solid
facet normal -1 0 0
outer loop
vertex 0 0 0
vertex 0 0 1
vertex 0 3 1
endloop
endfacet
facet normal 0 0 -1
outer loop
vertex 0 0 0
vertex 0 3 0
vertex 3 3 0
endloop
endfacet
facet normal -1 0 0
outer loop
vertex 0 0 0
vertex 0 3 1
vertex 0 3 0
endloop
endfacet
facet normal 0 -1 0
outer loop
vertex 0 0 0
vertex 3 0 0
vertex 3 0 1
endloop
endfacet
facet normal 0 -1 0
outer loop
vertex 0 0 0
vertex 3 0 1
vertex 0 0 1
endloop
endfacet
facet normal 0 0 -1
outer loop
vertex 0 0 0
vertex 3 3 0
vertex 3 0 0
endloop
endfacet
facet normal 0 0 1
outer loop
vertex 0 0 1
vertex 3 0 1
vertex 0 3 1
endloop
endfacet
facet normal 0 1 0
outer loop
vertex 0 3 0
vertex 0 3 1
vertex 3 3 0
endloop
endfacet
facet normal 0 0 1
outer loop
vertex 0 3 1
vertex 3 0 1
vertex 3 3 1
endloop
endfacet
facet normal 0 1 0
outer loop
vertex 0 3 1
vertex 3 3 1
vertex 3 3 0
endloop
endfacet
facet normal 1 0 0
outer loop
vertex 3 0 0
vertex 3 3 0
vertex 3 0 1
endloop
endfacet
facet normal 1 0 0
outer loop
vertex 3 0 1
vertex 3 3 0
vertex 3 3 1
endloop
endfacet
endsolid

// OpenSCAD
/* Warning, this is a very basic generator with a lot of approximation 
input data : [MSOP, EMX, 3x3mm, 10, , F, C04-00021F]
generated by com.zoubworld.electronics.cad.model3d.Basic
Date : Sun Feb 15 10:50:48 CET 2026
*/

//body
color("black")
translate([0,0,0])
cube([3.0,3.0,1.0], center=false);
